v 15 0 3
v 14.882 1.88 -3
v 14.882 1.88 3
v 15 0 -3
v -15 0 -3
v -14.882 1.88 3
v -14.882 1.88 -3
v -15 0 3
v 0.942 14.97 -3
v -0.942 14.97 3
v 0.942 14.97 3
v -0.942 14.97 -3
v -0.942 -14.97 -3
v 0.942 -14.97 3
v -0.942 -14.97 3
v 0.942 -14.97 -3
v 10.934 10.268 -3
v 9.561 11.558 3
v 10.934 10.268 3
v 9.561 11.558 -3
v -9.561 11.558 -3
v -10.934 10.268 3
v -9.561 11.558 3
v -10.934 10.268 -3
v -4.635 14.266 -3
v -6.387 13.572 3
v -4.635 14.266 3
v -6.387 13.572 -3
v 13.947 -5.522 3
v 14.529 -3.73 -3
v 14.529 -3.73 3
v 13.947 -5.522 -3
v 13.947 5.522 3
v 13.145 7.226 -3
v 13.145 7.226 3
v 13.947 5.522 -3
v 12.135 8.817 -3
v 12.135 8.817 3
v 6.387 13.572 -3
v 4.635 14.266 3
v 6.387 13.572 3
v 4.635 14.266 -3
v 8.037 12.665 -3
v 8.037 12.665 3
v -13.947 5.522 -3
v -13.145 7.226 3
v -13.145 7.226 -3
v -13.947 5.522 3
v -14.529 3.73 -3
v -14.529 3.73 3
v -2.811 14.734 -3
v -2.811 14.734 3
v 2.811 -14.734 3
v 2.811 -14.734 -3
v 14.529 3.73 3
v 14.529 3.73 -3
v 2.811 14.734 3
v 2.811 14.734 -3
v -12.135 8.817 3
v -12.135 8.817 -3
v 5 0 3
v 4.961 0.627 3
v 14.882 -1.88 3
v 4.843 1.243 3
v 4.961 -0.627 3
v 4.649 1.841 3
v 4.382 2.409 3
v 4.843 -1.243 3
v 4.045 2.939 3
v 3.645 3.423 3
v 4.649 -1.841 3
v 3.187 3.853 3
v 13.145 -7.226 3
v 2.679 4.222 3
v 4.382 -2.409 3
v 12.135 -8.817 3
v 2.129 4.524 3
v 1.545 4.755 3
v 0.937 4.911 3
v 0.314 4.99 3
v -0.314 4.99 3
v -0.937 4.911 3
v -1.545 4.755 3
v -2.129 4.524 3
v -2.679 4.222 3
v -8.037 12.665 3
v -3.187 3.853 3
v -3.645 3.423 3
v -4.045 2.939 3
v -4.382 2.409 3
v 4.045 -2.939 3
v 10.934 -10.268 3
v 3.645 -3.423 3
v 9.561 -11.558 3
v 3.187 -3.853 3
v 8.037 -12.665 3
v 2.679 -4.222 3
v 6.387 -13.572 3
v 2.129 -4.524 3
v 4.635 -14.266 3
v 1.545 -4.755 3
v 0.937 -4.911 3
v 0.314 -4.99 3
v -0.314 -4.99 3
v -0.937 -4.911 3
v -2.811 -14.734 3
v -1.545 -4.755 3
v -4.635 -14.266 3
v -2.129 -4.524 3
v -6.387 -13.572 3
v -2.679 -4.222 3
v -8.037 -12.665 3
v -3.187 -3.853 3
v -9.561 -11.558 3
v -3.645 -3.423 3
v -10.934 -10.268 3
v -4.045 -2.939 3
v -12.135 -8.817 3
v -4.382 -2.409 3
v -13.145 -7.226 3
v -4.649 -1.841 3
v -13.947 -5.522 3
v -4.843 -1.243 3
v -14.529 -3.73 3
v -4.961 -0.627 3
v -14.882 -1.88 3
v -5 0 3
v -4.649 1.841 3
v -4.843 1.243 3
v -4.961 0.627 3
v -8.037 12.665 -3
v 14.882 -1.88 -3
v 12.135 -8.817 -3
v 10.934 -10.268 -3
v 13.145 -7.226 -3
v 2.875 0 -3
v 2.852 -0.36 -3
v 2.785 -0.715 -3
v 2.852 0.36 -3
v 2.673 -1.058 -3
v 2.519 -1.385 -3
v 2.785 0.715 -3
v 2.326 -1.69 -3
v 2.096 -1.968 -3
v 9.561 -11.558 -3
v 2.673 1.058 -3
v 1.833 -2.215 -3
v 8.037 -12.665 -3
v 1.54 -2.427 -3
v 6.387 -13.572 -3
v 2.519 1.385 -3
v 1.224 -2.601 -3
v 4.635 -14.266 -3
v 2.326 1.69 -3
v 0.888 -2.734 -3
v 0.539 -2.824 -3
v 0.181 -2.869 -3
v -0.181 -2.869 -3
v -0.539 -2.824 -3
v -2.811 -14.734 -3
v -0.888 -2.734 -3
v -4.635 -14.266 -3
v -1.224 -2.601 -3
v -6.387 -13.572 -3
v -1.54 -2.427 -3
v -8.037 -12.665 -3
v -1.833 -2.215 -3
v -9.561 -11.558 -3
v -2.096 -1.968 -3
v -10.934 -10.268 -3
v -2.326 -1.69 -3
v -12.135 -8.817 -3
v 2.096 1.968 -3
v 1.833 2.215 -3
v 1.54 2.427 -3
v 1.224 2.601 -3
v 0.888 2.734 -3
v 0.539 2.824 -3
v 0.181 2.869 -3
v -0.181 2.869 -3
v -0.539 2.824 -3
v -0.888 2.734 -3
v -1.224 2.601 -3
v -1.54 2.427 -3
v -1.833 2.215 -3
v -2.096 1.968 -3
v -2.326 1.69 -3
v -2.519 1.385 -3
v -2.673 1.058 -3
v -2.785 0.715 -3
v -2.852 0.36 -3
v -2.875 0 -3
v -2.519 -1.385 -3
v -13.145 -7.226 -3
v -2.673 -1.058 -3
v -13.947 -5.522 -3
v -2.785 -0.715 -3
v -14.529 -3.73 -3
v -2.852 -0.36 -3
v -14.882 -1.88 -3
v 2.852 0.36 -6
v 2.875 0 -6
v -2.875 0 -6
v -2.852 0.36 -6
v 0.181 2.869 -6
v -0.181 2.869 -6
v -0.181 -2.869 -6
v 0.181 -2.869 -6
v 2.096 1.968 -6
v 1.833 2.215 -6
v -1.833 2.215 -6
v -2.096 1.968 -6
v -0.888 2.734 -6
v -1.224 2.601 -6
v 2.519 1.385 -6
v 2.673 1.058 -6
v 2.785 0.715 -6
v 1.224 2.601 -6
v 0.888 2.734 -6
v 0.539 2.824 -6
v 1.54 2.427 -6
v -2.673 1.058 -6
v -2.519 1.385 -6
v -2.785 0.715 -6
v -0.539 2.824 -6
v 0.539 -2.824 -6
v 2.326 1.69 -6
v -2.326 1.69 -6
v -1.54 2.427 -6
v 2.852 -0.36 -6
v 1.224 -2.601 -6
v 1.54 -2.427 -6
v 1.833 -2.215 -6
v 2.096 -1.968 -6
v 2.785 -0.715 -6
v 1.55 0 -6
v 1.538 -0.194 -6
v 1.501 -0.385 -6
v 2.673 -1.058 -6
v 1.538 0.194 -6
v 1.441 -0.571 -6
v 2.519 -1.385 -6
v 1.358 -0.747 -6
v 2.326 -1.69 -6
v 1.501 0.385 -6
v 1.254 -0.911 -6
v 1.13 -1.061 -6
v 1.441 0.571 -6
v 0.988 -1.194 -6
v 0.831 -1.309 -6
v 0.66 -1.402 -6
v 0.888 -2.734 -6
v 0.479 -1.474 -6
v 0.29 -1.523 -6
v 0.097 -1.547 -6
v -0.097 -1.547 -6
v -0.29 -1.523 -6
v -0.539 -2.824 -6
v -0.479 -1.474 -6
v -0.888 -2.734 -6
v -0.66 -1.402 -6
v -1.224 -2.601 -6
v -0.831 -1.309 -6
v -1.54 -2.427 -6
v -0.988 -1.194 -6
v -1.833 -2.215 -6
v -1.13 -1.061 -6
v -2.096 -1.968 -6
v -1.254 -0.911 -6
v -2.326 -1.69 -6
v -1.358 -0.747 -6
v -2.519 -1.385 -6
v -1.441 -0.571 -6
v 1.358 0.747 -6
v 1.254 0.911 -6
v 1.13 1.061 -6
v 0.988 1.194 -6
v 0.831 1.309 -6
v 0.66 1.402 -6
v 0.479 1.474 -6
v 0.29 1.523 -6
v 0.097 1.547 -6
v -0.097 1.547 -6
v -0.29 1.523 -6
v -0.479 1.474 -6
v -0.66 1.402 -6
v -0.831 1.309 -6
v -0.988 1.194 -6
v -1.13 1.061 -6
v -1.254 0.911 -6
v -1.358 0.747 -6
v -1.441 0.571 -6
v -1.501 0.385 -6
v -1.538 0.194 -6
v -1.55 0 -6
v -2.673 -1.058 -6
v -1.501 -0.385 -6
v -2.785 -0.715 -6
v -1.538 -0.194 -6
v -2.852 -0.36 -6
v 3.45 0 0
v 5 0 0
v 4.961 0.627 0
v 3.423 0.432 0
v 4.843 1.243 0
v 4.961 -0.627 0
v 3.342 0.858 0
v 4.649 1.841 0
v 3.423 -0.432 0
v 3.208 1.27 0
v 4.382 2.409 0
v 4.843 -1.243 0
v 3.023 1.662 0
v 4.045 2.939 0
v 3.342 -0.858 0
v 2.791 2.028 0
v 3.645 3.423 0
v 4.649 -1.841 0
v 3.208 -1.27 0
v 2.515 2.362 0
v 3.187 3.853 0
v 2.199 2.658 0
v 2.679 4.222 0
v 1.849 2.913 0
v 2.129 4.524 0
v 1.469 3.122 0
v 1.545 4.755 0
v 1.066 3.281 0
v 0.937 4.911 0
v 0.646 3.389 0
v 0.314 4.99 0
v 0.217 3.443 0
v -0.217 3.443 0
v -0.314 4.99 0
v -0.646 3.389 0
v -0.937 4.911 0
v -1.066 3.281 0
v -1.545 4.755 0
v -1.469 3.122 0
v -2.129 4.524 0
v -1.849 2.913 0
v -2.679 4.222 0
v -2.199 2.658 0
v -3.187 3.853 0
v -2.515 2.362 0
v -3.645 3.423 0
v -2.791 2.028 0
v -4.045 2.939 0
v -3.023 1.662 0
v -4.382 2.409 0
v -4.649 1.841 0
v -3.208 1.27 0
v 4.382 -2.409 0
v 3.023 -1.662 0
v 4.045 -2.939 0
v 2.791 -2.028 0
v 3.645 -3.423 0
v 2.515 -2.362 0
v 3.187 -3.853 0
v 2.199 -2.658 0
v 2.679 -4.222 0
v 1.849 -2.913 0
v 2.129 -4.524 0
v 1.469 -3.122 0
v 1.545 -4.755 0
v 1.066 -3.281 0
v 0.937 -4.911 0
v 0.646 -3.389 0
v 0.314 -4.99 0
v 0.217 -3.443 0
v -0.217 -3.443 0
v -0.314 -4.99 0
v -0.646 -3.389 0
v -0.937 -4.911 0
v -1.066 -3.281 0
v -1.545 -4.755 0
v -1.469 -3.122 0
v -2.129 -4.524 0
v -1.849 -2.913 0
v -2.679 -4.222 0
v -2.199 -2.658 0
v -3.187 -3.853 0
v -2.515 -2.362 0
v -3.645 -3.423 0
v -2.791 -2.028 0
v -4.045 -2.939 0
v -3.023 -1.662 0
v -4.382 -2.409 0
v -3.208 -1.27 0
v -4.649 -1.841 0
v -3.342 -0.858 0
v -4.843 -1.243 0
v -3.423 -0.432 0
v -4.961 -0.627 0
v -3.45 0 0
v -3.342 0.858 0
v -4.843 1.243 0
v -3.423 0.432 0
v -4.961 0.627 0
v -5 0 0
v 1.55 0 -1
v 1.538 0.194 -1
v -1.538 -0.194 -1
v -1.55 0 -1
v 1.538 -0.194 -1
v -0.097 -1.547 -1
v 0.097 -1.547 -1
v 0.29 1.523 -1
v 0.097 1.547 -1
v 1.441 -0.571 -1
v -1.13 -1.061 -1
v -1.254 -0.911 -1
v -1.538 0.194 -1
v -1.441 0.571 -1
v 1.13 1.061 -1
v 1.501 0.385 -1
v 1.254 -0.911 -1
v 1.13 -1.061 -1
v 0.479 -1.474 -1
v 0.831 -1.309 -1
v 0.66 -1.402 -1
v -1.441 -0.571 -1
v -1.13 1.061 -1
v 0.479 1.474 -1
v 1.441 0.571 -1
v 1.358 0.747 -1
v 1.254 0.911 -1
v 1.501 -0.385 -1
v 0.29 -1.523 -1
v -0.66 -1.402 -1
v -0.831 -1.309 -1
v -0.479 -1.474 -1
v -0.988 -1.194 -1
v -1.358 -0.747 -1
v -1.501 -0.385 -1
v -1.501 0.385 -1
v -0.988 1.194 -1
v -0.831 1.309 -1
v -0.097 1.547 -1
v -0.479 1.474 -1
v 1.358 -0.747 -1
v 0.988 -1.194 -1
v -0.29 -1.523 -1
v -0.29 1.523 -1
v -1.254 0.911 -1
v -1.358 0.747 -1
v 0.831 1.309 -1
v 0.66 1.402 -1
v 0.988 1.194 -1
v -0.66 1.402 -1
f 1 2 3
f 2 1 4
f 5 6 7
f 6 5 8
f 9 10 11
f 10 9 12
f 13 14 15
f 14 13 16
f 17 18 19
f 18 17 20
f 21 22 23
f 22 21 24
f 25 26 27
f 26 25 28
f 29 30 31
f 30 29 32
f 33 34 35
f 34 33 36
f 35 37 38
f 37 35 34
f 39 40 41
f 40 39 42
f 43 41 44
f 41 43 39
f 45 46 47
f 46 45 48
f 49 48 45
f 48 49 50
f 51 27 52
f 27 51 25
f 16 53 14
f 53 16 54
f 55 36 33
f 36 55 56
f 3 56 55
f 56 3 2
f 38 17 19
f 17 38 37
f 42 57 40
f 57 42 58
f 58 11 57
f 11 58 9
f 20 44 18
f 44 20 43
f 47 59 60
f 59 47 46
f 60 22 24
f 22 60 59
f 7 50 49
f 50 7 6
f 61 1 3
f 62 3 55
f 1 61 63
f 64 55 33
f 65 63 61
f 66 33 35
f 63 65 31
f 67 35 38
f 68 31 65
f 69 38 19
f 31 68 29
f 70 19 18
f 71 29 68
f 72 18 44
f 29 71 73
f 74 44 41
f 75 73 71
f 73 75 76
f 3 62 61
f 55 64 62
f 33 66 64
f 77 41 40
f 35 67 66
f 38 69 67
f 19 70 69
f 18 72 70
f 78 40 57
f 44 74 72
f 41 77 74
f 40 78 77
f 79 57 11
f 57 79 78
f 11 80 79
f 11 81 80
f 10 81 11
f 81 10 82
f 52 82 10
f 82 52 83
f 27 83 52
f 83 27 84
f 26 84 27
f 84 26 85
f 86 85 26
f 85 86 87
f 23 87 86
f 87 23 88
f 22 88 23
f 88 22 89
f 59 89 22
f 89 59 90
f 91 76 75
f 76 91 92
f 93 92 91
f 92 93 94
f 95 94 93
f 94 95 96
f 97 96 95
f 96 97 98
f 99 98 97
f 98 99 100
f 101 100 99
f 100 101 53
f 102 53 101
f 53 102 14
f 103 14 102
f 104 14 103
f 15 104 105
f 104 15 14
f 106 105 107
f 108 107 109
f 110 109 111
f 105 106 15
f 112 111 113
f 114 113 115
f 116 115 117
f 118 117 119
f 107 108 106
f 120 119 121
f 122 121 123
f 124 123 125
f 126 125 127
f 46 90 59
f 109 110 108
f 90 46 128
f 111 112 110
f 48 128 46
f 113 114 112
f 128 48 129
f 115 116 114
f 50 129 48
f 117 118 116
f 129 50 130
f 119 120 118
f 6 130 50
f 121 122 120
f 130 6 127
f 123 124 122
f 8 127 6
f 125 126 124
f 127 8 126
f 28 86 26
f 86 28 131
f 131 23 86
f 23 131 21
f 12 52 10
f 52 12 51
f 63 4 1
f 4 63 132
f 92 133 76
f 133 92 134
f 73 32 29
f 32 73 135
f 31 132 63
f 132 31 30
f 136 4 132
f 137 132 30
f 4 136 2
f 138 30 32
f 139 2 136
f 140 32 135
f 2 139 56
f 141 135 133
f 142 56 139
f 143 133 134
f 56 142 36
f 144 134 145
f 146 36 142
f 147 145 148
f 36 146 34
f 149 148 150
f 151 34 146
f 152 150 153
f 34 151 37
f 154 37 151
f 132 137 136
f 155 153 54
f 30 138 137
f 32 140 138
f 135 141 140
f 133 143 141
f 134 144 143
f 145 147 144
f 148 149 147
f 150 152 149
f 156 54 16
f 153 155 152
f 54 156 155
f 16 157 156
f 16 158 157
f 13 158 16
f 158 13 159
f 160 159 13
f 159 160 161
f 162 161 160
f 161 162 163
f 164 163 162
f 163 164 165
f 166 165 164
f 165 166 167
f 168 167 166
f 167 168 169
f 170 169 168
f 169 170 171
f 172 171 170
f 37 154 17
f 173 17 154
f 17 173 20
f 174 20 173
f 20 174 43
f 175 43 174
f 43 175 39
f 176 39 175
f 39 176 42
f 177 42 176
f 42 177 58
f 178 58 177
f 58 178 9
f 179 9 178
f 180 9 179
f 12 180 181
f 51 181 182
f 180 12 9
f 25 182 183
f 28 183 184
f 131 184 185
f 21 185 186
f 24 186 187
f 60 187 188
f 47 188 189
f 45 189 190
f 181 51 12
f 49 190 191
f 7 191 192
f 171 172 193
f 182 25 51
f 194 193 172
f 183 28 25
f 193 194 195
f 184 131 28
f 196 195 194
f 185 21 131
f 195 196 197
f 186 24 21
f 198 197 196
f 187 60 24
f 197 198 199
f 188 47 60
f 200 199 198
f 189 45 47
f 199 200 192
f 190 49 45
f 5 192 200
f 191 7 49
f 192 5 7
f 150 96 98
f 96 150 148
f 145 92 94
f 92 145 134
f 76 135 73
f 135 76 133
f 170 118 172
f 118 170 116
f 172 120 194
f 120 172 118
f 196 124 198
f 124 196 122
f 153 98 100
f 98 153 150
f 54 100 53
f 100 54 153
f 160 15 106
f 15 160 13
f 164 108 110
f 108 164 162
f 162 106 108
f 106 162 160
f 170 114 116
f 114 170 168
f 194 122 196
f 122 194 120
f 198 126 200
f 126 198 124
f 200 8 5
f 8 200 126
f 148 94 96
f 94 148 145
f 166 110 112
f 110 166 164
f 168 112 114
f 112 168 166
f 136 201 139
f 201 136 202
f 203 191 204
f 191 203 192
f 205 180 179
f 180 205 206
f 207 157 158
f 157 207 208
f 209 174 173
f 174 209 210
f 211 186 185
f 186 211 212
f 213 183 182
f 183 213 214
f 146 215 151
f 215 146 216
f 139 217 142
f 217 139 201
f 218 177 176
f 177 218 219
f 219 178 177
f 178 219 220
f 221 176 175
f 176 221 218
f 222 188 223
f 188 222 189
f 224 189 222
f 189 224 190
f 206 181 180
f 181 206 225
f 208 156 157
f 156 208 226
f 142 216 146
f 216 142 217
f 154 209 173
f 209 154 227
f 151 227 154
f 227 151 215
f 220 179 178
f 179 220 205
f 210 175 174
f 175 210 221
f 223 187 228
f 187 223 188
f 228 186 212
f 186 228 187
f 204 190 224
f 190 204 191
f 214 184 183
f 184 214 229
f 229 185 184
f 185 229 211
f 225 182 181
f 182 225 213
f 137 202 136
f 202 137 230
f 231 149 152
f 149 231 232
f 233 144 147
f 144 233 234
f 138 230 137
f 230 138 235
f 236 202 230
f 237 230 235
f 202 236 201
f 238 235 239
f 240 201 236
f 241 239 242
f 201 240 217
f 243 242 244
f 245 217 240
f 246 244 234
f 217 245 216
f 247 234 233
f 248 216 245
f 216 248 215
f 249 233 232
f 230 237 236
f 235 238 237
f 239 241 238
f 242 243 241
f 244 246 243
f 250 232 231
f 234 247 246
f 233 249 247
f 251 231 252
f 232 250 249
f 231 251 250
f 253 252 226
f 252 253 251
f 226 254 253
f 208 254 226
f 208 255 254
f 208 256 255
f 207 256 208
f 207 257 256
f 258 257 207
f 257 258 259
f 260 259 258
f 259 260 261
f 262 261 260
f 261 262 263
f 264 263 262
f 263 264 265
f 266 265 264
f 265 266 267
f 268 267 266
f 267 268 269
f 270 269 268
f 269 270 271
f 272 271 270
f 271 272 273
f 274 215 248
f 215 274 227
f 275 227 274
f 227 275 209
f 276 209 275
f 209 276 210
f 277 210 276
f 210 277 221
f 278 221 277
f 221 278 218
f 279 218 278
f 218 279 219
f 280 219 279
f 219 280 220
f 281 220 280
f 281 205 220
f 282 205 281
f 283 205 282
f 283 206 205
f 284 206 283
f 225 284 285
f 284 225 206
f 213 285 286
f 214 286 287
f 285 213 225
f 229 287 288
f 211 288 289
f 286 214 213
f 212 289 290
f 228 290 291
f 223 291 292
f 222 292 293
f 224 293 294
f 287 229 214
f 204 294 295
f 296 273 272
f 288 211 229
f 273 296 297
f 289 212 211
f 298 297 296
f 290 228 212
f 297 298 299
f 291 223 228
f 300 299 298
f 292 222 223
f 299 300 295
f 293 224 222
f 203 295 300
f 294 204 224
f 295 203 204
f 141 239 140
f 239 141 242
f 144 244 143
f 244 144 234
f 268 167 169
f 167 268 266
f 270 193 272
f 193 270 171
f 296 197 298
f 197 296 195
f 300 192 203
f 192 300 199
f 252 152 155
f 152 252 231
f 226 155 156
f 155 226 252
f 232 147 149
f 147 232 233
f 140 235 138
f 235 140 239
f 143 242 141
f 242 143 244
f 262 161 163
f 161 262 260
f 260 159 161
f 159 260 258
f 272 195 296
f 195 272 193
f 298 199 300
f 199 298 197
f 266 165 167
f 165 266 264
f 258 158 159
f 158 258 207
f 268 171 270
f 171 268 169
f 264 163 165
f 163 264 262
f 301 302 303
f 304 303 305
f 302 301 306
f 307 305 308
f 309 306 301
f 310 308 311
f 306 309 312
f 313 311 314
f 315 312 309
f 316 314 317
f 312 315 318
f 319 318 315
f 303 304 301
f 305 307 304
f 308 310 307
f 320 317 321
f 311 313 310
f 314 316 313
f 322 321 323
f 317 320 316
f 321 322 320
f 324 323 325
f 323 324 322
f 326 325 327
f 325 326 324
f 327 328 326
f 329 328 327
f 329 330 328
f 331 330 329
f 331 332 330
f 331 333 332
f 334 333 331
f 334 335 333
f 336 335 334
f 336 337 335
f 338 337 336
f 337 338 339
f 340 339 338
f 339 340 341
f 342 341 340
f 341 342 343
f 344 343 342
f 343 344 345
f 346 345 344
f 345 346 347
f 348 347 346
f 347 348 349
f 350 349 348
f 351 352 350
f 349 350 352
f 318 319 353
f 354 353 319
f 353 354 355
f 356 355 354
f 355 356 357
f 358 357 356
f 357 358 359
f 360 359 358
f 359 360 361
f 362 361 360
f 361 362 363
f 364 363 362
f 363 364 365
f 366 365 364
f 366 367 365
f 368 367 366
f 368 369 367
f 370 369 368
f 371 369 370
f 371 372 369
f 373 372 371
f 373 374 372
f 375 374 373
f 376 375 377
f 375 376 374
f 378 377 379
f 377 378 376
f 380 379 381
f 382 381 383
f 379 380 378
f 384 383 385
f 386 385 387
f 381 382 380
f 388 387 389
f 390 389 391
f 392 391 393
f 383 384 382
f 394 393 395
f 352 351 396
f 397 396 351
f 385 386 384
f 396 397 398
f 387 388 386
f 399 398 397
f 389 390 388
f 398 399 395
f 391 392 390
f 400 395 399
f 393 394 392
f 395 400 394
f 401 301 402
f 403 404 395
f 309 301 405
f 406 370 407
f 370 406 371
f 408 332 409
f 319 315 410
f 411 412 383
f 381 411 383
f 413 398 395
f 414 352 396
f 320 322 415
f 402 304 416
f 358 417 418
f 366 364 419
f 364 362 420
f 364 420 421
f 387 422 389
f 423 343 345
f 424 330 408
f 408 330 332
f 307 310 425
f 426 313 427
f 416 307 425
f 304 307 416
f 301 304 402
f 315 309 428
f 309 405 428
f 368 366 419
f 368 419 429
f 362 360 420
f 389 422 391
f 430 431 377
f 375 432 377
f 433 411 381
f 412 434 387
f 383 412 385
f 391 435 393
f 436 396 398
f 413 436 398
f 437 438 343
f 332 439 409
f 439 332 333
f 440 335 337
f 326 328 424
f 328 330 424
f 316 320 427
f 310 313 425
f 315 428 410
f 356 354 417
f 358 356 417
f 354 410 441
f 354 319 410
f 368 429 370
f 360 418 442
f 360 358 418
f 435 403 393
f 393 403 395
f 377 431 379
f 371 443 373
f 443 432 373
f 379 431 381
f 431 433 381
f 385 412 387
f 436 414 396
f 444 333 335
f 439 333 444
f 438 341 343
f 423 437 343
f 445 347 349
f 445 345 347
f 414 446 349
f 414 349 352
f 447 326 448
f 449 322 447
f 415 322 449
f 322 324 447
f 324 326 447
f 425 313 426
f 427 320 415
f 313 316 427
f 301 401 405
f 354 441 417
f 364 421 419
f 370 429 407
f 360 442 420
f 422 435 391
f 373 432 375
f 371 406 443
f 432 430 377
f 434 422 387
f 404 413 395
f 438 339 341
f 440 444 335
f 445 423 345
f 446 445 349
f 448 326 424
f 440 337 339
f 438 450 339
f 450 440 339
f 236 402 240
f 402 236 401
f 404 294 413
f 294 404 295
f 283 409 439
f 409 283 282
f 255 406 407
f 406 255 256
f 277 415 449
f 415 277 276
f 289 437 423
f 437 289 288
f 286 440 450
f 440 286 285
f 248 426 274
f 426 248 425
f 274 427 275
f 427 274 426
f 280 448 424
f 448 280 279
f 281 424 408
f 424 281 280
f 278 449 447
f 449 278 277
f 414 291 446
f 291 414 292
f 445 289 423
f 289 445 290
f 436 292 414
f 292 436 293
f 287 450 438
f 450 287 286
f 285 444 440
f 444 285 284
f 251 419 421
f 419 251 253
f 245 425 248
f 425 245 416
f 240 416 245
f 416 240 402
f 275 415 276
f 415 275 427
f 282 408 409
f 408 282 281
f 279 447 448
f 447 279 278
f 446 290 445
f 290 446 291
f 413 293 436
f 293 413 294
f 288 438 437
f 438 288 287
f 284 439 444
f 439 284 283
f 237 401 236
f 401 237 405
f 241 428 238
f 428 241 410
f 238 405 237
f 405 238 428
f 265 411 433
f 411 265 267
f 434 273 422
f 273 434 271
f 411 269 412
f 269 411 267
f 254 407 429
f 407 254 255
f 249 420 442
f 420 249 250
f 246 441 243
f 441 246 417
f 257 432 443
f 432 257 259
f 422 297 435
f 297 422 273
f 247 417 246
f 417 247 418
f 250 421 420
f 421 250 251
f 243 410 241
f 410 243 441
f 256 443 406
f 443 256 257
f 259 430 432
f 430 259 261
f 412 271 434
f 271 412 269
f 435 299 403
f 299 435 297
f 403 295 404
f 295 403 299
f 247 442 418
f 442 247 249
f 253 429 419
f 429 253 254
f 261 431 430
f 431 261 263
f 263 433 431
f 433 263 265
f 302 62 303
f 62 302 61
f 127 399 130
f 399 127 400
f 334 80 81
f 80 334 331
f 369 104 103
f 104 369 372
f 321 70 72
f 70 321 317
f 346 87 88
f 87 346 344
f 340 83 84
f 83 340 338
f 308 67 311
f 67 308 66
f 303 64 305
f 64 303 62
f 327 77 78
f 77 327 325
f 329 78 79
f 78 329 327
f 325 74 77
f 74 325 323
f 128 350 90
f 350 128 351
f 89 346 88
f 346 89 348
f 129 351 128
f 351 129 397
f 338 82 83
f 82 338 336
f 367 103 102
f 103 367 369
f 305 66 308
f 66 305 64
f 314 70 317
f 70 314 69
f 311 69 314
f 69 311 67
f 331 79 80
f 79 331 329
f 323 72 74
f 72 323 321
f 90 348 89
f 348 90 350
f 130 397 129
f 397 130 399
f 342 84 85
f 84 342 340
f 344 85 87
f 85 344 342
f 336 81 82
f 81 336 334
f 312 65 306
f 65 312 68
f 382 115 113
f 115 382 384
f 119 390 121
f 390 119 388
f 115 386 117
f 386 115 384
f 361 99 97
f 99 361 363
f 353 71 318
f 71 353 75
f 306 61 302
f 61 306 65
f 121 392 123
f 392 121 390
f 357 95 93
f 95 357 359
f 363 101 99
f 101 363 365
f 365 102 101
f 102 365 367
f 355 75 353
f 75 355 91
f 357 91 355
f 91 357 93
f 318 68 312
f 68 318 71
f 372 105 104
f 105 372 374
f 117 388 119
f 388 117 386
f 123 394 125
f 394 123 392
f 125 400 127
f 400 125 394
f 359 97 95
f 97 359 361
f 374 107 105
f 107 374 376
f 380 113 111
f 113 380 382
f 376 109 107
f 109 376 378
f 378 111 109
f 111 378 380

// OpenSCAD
$fn = 50;


difference() {
	union() {
		translate(v = [0, 0, -3.0000000000]) {
			cylinder(h = 6, r = 15.0000000000);
		}
		#translate(v = [0, 0, -6.0000000000]) {
			cylinder(h = 6, r = 2.8750000000);
		}
	}
	union() {
		translate(v = [0, 0, 0]) {
			rotate(a = [0, 0, 0]) {
				difference() {
					union() {
						translate(v = [0, 0, -6.0000000000]) {
							cylinder(h = 6, r = 1.2500000000);
						}
						translate(v = [0, 0, -1.0000000000]) {
							cylinder(h = 1.0000000000, r1 = 1.5500000000, r2 = 3.4500000000);
						}
						translate(v = [0, 0, -6.0000000000]) {
							cylinder(h = 6, r = 1.5500000000);
						}
						translate(v = [0, 0, -6.0000000000]) {
							cylinder(h = 6, r = 1.2500000000);
						}
					}
					union();
				}
			}
		}
		#cylinder(h = 3, r = 5.0000000000);
	}
}
